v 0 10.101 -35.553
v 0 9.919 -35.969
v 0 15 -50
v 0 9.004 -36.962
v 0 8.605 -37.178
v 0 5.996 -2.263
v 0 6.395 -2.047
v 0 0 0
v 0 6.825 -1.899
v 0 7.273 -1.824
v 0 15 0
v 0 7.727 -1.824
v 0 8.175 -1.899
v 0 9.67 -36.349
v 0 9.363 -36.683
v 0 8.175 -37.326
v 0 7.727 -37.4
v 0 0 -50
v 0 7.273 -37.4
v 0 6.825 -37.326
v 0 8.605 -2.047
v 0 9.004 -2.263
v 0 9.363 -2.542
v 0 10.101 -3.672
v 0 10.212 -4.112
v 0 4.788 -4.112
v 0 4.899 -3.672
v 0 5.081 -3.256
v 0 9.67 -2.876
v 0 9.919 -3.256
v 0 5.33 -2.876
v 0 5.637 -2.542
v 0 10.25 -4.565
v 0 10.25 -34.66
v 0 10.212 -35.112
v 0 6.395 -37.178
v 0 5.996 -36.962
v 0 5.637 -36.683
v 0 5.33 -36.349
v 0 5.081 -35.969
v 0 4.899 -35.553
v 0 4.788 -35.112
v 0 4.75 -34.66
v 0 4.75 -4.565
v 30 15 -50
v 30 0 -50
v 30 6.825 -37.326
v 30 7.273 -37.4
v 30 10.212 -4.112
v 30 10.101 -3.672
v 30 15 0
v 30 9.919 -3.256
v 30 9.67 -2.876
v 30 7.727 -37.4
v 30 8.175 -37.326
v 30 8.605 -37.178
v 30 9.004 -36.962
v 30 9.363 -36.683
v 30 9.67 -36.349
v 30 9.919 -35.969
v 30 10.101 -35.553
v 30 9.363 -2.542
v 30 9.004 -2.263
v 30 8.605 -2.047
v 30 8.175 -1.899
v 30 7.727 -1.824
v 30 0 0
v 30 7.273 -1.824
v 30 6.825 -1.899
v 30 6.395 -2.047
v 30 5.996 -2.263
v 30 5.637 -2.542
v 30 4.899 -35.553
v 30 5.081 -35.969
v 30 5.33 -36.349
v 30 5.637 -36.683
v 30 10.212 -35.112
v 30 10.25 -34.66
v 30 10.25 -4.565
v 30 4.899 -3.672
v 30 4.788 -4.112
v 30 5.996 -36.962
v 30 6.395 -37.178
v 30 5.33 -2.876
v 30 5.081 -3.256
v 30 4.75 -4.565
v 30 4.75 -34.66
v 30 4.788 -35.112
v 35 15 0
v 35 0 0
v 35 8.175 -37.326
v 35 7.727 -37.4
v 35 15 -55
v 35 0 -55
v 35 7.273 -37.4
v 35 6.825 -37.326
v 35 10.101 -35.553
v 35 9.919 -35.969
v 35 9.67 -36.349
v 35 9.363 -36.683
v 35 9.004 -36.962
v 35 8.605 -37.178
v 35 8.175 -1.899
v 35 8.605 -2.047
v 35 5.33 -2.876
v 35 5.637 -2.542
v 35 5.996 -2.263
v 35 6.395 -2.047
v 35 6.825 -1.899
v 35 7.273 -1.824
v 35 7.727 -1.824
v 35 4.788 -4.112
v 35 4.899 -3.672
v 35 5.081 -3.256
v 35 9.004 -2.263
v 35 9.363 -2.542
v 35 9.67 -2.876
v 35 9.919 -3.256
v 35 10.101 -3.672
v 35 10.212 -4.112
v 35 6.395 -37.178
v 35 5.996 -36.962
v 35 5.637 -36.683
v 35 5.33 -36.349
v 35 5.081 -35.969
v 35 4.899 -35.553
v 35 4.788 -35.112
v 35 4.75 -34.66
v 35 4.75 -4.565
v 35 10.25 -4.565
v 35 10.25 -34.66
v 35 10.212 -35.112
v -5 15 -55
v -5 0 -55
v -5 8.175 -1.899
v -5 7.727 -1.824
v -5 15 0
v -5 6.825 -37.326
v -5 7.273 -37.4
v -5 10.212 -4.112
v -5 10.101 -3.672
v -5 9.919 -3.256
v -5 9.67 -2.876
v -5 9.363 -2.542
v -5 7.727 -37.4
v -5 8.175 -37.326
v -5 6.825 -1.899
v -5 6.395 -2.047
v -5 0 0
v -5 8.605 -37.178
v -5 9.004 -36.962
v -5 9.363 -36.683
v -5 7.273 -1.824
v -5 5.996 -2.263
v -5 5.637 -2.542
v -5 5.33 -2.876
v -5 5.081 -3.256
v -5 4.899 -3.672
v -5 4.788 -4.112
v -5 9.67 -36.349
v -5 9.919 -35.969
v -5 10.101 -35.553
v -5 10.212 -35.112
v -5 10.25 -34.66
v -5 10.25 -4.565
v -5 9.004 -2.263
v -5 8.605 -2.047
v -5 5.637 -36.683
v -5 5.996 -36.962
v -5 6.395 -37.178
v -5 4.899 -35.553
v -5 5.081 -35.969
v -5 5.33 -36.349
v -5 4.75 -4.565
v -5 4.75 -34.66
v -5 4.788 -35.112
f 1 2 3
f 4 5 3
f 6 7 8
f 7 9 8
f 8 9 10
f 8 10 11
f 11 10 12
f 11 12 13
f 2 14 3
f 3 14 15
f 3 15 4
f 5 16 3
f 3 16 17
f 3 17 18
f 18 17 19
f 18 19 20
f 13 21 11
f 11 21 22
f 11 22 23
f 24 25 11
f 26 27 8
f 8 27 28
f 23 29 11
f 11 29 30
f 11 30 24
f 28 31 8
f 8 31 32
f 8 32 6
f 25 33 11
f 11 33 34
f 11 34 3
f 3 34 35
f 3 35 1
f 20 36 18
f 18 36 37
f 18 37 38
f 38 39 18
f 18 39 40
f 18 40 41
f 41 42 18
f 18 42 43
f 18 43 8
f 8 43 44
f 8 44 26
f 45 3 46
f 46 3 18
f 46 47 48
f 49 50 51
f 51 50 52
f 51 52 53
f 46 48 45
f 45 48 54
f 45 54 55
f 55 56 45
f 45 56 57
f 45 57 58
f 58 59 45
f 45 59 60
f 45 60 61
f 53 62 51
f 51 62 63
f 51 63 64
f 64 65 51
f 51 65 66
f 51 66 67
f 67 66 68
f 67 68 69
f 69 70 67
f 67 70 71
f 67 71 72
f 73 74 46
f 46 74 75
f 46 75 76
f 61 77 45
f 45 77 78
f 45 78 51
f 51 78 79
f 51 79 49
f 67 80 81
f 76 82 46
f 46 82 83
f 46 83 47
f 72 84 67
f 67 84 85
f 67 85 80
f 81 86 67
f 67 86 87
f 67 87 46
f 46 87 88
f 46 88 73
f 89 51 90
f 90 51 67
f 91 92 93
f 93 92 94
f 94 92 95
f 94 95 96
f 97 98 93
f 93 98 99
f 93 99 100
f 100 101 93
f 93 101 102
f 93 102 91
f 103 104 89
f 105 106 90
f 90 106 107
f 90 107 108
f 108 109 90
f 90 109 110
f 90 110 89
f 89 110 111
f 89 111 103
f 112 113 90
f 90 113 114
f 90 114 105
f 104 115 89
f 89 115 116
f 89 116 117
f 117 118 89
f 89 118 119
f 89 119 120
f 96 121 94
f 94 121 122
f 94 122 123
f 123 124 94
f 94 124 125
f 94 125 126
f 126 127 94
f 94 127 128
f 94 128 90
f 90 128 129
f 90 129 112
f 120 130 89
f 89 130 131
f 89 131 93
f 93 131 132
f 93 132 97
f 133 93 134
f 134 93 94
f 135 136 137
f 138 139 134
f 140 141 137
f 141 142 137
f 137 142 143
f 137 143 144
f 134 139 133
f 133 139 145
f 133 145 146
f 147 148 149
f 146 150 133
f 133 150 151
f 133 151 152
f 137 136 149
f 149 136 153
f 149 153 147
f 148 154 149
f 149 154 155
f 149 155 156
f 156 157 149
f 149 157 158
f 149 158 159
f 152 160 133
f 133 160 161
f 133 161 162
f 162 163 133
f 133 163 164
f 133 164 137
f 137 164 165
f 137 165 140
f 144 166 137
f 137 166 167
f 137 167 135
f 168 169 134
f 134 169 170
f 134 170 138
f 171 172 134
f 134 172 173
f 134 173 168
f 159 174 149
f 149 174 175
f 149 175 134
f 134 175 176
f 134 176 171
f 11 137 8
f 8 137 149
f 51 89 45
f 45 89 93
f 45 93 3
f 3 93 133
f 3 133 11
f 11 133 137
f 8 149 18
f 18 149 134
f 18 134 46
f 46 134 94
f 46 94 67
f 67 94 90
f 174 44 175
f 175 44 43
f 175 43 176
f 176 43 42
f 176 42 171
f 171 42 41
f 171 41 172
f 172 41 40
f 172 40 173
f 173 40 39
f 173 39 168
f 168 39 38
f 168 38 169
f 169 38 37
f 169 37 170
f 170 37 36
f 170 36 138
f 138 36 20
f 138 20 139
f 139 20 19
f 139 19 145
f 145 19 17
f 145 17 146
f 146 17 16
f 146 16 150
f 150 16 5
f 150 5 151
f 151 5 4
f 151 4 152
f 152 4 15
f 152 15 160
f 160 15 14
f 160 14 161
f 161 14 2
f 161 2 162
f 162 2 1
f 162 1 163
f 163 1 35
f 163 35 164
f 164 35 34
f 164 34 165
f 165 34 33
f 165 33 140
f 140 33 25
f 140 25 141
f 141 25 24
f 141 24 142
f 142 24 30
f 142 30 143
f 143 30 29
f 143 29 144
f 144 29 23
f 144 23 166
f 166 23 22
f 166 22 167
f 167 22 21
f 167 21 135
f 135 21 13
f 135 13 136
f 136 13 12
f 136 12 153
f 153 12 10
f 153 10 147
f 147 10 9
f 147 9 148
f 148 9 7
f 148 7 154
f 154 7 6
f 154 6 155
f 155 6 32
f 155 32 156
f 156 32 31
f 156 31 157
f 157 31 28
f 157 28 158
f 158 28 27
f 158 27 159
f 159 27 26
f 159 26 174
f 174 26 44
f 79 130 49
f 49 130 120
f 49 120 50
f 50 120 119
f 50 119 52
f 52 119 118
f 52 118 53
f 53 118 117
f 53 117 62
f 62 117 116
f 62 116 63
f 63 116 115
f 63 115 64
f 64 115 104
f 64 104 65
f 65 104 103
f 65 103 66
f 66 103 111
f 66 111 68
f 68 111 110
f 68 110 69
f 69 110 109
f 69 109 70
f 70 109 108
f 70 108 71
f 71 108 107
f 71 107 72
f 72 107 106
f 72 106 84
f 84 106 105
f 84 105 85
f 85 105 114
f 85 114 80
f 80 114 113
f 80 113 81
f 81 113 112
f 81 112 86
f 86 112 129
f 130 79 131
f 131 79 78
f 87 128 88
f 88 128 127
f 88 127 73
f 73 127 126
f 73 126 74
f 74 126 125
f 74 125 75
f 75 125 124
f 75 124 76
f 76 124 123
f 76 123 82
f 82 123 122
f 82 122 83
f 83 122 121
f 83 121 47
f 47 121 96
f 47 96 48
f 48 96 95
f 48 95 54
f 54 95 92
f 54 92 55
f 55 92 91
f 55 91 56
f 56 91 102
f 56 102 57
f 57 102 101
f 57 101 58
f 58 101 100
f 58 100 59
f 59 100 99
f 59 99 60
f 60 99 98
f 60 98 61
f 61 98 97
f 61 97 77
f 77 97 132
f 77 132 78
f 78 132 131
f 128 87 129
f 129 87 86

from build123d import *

# Parameters (mm, degrees)
BOSS_EXTRUDE1_DEPTH = 15
CUT_EXTRUDE1_DEPTH  = 41


with BuildPart() as part:
    # Sketch1 → Boss-Extrude1 (new body)
    with BuildSketch(Plane(origin=(0, 0, 0), x_dir=(1, 0, 0), z_dir=(0, 1, 0))):
        Polygon((0, 0), (-5, 0), (-5, 55), (23.965517241, 55), (35, 55), (35, 0), (30, 0), (30, 50), (0, 50), align=None)
    extrude(amount=BOSS_EXTRUDE1_DEPTH)

    # Sketch2 → Cut-Extrude1 (cut, through all)
    with BuildSketch(Plane(origin=(35, 0, 0), x_dir=(0, 0, -1), z_dir=(1, 0, 0))):
        with BuildLine():
            Line((4.564965869, 10.25), (34.659838249, 10.25))
            ThreePointArc((34.659838249, 10.25), (37.409838249, 7.5), (34.659838249, 4.75))
            Line((34.659838249, 4.75), (4.564965869, 4.75))
            ThreePointArc((4.564965869, 4.75), (1.814965869, 7.5), (4.564965869, 10.25))
        make_face()
    extrude(amount=-CUT_EXTRUDE1_DEPTH, mode=Mode.SUBTRACT)


solid = part.part
